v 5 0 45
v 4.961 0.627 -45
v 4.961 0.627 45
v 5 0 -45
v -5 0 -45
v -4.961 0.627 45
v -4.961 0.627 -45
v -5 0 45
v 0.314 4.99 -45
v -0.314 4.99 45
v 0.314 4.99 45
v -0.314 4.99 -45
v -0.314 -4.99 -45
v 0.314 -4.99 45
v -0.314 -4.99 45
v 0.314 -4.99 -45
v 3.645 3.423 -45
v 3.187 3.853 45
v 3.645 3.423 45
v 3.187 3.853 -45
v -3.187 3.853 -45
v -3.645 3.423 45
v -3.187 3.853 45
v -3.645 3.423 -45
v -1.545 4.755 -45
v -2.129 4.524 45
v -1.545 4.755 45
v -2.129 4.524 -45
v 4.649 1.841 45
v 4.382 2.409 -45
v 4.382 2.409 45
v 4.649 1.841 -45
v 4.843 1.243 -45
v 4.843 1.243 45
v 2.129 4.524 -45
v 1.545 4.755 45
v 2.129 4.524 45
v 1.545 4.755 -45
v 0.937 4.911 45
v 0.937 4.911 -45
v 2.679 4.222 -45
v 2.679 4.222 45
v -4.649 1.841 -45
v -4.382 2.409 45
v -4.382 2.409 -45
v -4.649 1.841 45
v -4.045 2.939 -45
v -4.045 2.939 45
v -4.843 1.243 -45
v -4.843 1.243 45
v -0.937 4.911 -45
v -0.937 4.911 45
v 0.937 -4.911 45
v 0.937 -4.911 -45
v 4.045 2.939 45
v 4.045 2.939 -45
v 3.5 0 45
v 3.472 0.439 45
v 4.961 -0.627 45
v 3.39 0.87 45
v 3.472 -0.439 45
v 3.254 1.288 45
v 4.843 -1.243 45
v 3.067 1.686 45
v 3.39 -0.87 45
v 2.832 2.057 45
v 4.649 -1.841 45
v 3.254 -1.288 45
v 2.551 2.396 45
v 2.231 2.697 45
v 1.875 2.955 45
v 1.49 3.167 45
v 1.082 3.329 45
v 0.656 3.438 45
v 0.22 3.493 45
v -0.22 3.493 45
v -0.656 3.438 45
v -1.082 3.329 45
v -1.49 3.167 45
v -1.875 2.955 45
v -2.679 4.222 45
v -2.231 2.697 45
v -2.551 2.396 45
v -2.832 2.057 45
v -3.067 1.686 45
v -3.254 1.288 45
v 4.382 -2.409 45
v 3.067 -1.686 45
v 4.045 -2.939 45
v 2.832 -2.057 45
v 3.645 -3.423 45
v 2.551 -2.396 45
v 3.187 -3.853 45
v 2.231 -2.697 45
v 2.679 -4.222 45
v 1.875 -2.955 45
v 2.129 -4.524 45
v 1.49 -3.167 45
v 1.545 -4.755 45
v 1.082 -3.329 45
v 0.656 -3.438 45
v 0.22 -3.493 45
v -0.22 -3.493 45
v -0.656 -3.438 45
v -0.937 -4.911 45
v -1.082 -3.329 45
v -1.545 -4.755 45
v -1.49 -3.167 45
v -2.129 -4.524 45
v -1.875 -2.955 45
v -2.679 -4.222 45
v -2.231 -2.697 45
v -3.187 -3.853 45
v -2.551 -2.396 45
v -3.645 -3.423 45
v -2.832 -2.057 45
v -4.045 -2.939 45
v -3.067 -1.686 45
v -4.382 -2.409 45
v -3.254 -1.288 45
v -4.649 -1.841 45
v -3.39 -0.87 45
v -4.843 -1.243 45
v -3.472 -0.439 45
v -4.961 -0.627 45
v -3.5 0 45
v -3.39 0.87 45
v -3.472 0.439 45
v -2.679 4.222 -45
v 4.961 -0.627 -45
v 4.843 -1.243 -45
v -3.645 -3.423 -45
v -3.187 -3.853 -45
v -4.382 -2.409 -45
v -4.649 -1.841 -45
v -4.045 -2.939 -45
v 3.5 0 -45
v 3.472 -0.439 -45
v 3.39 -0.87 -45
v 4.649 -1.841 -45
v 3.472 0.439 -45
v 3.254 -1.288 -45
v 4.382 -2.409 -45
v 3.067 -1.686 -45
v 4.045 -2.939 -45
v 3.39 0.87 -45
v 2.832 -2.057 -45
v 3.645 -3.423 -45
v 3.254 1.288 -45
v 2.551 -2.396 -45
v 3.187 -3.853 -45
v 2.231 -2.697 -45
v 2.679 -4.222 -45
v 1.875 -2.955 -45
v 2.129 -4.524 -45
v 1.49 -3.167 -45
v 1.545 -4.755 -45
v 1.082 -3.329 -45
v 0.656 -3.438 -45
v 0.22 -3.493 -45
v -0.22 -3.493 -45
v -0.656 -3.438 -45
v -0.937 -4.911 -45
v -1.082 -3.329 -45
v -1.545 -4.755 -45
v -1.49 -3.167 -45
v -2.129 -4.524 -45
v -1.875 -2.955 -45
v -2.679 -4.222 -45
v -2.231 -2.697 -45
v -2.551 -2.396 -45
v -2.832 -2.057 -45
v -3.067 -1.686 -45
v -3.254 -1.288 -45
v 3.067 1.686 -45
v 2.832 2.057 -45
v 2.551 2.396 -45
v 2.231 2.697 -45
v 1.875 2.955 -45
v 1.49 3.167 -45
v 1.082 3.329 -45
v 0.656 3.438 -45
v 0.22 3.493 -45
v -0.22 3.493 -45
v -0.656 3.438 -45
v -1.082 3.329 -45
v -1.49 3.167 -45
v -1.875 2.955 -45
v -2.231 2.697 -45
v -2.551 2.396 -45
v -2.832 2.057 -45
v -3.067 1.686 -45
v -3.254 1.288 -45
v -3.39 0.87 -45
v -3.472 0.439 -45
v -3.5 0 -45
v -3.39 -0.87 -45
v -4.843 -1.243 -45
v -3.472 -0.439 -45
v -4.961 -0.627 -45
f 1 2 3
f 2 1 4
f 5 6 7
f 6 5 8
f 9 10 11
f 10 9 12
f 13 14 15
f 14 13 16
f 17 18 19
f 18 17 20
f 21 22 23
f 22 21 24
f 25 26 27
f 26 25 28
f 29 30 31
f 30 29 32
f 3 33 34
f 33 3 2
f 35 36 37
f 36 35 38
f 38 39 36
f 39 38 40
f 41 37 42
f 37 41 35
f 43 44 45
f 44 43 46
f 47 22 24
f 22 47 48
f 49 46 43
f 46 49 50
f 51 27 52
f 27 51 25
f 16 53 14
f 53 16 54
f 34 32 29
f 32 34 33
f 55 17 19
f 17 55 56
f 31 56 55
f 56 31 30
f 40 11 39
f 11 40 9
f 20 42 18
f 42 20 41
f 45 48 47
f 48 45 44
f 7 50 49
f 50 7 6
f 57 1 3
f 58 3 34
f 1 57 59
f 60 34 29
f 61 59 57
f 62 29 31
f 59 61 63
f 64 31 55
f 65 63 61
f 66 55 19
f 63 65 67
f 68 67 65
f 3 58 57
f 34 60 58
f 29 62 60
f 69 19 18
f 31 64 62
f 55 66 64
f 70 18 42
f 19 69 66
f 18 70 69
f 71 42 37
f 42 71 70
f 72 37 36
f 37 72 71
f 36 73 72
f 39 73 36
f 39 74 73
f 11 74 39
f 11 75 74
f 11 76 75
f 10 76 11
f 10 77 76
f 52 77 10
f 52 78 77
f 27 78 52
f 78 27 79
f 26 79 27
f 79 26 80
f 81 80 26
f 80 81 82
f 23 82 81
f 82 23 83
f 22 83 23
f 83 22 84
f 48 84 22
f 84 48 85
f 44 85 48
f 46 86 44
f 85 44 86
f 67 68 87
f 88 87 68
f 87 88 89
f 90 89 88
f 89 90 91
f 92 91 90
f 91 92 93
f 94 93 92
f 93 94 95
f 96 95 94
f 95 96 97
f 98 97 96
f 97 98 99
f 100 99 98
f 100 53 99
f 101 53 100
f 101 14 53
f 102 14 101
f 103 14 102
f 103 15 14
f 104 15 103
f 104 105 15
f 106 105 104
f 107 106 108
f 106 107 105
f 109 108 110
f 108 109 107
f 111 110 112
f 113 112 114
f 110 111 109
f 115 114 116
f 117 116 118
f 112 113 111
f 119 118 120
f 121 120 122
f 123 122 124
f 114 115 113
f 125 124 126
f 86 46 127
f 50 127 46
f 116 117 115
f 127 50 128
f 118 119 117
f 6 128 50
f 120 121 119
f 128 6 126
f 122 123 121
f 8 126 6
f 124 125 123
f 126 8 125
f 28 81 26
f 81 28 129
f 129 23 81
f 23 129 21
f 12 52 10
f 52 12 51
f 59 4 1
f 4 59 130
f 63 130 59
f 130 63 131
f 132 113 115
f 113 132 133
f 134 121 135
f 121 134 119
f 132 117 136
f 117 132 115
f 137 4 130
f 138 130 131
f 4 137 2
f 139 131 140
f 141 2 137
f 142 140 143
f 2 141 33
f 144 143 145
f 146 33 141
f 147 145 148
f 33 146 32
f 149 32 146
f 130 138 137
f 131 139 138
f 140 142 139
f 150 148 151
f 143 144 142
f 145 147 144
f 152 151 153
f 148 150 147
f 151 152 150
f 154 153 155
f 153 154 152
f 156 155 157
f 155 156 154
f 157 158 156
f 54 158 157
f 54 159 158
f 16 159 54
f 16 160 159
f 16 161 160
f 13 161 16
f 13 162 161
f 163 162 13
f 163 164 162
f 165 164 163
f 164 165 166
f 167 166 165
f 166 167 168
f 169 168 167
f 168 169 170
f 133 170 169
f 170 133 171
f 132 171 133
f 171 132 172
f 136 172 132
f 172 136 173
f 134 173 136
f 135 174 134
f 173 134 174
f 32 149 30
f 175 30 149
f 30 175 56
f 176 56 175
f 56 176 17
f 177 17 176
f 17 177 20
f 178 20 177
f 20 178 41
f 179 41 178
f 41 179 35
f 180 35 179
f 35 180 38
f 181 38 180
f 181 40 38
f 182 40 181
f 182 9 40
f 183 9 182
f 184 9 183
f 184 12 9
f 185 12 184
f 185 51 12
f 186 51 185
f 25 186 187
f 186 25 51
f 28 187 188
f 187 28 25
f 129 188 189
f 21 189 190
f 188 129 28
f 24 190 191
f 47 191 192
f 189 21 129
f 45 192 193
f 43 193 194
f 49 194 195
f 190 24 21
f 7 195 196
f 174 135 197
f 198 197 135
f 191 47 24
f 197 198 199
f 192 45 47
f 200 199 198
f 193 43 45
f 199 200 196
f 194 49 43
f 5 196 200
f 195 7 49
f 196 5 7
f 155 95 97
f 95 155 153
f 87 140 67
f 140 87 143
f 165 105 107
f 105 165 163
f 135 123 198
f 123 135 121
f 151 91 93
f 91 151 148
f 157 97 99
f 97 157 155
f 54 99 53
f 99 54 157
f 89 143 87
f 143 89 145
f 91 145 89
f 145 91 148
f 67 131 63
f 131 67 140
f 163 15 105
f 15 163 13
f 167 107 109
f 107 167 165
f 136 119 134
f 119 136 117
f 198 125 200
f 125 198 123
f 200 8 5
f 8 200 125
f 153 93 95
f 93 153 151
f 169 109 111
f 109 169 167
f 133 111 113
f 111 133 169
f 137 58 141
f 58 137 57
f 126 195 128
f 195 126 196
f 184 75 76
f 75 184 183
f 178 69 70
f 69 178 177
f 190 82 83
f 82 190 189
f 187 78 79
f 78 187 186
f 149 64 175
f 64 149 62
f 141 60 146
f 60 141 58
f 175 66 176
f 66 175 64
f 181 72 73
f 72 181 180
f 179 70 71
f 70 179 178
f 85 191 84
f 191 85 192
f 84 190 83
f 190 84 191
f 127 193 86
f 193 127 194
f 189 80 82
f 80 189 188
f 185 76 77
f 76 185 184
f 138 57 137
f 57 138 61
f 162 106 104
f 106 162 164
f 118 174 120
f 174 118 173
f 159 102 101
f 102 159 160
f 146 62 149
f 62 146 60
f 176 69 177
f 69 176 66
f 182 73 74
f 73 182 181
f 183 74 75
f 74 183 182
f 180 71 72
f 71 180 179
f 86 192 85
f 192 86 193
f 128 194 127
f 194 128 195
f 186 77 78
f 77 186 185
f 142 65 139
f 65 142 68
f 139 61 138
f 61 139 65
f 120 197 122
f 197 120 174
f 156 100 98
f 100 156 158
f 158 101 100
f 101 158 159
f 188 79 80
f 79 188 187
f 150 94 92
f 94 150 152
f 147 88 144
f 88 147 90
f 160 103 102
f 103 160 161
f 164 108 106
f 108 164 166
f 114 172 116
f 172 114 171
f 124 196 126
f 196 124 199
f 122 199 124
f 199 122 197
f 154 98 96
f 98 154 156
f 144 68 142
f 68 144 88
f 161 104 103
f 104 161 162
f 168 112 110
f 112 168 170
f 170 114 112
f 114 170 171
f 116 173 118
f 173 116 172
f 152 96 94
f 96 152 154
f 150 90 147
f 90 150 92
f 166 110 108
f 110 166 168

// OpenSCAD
$fn = 50;


difference() {
	union() {
		translate(v = [0, 0, -45.0000000000]) {
			cylinder(h = 90, r = 5.0000000000);
		}
	}
	union() {
		translate(v = [0, 0, -100.0000000000]) {
			cylinder(h = 200, r = 3.5000000000);
		}
	}
}
